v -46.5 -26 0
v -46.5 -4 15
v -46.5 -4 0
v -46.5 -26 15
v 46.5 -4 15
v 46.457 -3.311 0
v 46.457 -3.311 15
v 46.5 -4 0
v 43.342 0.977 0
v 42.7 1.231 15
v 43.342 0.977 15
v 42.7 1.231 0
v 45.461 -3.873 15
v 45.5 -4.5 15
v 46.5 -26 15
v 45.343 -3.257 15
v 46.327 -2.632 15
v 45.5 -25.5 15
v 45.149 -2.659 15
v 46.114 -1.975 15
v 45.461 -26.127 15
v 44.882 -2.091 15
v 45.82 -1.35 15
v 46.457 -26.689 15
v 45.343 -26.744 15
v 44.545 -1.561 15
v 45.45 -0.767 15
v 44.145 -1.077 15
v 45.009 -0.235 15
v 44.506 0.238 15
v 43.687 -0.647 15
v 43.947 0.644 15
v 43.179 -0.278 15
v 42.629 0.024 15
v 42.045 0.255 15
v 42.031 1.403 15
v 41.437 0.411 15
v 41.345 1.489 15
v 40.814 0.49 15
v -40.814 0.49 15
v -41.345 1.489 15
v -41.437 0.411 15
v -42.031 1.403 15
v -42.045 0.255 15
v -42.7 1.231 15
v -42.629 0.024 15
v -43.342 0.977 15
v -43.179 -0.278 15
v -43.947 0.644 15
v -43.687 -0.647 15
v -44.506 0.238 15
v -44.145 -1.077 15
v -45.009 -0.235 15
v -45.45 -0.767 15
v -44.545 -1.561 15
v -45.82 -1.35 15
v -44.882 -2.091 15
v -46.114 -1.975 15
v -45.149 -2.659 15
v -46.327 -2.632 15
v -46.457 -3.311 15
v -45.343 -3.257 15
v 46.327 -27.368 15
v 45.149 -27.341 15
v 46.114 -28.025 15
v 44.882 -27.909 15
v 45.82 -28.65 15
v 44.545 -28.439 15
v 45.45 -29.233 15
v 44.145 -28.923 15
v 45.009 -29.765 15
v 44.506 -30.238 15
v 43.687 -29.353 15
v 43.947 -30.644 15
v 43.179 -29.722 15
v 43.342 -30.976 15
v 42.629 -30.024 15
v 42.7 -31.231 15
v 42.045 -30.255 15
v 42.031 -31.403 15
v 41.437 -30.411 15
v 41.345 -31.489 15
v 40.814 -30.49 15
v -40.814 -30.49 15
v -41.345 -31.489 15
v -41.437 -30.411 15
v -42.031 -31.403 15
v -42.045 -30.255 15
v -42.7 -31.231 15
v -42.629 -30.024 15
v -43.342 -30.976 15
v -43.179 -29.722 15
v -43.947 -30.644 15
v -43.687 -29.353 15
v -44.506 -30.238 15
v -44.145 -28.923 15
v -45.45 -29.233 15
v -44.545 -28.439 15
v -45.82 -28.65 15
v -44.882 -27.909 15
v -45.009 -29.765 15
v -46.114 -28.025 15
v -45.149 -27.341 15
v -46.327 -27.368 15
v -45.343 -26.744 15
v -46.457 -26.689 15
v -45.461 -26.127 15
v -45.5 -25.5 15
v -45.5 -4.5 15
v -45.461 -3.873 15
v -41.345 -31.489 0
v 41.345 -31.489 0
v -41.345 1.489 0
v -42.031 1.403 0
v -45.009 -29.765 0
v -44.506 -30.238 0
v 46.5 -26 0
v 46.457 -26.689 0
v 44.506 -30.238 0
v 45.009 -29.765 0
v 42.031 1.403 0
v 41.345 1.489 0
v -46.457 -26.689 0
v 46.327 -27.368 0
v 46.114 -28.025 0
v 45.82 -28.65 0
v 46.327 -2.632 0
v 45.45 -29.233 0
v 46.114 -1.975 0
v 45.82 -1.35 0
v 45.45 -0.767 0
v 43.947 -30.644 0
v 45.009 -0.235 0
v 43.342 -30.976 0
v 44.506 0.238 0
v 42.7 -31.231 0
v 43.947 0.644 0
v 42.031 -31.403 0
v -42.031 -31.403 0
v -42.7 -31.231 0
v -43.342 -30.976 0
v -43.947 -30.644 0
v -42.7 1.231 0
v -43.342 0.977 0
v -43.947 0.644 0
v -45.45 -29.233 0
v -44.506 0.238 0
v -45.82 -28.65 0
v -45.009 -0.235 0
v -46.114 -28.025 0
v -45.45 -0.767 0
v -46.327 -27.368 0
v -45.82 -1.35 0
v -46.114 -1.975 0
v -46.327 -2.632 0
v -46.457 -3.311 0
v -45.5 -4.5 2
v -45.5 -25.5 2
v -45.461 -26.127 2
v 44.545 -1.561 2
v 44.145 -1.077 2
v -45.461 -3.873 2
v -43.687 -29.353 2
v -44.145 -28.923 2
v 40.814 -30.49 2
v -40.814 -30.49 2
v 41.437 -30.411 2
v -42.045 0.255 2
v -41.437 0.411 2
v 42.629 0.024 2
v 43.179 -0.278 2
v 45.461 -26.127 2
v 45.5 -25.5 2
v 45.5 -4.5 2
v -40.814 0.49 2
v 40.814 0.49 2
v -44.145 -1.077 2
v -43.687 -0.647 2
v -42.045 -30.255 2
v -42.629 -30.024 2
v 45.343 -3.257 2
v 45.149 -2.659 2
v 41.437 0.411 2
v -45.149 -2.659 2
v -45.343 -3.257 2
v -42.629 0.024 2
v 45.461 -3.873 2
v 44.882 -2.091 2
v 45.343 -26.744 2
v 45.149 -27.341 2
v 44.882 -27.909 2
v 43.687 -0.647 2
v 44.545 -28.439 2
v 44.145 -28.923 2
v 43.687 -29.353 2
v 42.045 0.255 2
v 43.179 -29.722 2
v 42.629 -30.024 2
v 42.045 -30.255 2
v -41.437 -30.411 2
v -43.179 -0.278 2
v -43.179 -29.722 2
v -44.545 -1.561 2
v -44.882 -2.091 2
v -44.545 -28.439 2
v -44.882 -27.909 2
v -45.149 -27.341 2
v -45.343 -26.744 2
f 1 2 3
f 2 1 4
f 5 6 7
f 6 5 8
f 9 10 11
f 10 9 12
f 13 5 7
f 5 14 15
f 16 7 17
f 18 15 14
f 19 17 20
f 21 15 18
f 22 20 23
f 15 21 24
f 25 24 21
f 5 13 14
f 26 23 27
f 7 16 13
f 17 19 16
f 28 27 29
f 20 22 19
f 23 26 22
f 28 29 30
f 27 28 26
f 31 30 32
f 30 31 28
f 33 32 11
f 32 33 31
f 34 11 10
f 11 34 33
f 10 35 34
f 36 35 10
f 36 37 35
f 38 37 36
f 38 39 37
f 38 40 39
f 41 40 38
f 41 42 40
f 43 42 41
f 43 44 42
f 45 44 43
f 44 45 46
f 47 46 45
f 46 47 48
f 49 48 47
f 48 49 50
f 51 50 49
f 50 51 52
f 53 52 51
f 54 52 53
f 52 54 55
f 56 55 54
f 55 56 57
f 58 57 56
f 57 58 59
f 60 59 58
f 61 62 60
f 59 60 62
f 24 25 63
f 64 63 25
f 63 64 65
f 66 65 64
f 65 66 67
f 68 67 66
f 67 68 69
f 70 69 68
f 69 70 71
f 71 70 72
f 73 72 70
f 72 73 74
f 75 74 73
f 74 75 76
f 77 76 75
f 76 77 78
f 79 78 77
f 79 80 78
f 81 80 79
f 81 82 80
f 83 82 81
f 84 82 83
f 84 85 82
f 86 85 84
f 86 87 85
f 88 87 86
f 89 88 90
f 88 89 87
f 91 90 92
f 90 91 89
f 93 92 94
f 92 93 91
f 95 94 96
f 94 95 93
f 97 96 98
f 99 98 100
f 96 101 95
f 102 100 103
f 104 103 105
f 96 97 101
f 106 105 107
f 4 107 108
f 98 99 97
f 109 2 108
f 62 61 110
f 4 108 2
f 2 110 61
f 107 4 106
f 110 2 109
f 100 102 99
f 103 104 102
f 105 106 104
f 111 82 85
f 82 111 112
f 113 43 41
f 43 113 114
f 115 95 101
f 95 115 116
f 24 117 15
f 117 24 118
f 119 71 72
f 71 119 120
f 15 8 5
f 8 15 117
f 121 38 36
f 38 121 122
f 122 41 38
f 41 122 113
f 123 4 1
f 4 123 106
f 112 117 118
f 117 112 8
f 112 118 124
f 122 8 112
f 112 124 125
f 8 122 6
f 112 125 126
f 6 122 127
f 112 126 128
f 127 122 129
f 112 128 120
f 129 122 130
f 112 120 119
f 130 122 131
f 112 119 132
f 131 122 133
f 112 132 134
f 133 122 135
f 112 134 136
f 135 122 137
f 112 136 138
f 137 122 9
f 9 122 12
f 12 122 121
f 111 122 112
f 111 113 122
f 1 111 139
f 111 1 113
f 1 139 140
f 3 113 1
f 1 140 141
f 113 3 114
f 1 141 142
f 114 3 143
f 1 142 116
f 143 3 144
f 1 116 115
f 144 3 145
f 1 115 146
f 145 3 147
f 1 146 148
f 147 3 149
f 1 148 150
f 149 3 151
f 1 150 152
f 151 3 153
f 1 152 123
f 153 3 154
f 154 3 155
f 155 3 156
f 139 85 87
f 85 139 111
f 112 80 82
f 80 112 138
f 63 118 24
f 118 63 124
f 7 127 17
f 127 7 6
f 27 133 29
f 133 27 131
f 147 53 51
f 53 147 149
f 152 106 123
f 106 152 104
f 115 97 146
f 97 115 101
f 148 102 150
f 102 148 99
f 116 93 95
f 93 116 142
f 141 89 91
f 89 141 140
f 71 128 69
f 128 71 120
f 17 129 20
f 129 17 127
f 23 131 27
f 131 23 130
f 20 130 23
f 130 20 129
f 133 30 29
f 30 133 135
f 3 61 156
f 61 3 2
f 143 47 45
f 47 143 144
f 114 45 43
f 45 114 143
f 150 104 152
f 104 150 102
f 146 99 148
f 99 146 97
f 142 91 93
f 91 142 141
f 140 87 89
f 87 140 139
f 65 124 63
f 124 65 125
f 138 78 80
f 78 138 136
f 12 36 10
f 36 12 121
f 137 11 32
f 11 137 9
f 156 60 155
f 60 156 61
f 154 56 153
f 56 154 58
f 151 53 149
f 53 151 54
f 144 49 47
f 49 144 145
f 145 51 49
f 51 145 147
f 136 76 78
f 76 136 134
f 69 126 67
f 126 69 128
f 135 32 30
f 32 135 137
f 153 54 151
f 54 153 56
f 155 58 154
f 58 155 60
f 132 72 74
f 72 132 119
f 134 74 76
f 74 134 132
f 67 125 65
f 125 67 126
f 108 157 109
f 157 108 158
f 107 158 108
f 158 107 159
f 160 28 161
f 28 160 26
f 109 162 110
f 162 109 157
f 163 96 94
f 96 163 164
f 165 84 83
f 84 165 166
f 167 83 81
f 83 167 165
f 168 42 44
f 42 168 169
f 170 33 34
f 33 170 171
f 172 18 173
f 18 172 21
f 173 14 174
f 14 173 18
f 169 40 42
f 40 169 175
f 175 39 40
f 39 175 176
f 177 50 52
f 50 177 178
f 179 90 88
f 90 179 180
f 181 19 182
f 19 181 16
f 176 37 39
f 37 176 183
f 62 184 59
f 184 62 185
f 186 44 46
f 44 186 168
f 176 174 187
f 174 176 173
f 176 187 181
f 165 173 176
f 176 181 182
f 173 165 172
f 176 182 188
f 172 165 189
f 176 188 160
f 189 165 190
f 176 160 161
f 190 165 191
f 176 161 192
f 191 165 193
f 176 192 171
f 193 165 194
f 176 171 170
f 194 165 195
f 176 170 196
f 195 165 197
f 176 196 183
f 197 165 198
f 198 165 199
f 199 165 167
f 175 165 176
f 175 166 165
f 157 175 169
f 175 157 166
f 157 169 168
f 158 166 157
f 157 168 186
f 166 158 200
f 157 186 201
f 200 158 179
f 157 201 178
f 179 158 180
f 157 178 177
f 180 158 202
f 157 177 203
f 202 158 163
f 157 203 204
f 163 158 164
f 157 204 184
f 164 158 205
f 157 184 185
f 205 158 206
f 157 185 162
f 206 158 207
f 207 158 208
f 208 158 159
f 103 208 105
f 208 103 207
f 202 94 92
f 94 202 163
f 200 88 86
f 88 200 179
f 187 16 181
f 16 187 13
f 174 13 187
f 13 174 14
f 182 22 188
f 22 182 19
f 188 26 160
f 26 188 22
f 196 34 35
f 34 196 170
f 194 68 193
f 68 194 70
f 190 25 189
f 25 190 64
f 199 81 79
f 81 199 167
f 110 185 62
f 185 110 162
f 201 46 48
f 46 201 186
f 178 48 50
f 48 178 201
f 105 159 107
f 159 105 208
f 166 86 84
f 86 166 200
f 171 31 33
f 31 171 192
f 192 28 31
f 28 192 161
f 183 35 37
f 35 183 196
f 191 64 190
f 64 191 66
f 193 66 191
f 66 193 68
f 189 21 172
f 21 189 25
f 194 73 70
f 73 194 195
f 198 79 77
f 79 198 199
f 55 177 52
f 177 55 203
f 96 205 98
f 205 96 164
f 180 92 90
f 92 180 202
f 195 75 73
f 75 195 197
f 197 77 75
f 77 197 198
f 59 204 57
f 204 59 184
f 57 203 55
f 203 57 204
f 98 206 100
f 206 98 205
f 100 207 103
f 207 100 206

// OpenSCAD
$fn = 50;


difference() {
	union() {
		translate(v = [0, -15.0000000000, 0]) {
			hull() {
				translate(v = [-41.0000000000, 11.0000000000, 0]) {
					cylinder(h = 15, r = 5.5000000000);
				}
				translate(v = [41.0000000000, 11.0000000000, 0]) {
					cylinder(h = 15, r = 5.5000000000);
				}
				translate(v = [-41.0000000000, -11.0000000000, 0]) {
					cylinder(h = 15, r = 5.5000000000);
				}
				translate(v = [41.0000000000, -11.0000000000, 0]) {
					cylinder(h = 15, r = 5.5000000000);
				}
			}
		}
	}
	union() {
		translate(v = [0, -15.0000000000, 2]) {
			hull() {
				translate(v = [-40.5000000000, 10.5000000000, 0]) {
					cylinder(h = 30, r = 5);
				}
				translate(v = [40.5000000000, 10.5000000000, 0]) {
					cylinder(h = 30, r = 5);
				}
				translate(v = [-40.5000000000, -10.5000000000, 0]) {
					cylinder(h = 30, r = 5);
				}
				translate(v = [40.5000000000, -10.5000000000, 0]) {
					cylinder(h = 30, r = 5);
				}
			}
		}
	}
}
